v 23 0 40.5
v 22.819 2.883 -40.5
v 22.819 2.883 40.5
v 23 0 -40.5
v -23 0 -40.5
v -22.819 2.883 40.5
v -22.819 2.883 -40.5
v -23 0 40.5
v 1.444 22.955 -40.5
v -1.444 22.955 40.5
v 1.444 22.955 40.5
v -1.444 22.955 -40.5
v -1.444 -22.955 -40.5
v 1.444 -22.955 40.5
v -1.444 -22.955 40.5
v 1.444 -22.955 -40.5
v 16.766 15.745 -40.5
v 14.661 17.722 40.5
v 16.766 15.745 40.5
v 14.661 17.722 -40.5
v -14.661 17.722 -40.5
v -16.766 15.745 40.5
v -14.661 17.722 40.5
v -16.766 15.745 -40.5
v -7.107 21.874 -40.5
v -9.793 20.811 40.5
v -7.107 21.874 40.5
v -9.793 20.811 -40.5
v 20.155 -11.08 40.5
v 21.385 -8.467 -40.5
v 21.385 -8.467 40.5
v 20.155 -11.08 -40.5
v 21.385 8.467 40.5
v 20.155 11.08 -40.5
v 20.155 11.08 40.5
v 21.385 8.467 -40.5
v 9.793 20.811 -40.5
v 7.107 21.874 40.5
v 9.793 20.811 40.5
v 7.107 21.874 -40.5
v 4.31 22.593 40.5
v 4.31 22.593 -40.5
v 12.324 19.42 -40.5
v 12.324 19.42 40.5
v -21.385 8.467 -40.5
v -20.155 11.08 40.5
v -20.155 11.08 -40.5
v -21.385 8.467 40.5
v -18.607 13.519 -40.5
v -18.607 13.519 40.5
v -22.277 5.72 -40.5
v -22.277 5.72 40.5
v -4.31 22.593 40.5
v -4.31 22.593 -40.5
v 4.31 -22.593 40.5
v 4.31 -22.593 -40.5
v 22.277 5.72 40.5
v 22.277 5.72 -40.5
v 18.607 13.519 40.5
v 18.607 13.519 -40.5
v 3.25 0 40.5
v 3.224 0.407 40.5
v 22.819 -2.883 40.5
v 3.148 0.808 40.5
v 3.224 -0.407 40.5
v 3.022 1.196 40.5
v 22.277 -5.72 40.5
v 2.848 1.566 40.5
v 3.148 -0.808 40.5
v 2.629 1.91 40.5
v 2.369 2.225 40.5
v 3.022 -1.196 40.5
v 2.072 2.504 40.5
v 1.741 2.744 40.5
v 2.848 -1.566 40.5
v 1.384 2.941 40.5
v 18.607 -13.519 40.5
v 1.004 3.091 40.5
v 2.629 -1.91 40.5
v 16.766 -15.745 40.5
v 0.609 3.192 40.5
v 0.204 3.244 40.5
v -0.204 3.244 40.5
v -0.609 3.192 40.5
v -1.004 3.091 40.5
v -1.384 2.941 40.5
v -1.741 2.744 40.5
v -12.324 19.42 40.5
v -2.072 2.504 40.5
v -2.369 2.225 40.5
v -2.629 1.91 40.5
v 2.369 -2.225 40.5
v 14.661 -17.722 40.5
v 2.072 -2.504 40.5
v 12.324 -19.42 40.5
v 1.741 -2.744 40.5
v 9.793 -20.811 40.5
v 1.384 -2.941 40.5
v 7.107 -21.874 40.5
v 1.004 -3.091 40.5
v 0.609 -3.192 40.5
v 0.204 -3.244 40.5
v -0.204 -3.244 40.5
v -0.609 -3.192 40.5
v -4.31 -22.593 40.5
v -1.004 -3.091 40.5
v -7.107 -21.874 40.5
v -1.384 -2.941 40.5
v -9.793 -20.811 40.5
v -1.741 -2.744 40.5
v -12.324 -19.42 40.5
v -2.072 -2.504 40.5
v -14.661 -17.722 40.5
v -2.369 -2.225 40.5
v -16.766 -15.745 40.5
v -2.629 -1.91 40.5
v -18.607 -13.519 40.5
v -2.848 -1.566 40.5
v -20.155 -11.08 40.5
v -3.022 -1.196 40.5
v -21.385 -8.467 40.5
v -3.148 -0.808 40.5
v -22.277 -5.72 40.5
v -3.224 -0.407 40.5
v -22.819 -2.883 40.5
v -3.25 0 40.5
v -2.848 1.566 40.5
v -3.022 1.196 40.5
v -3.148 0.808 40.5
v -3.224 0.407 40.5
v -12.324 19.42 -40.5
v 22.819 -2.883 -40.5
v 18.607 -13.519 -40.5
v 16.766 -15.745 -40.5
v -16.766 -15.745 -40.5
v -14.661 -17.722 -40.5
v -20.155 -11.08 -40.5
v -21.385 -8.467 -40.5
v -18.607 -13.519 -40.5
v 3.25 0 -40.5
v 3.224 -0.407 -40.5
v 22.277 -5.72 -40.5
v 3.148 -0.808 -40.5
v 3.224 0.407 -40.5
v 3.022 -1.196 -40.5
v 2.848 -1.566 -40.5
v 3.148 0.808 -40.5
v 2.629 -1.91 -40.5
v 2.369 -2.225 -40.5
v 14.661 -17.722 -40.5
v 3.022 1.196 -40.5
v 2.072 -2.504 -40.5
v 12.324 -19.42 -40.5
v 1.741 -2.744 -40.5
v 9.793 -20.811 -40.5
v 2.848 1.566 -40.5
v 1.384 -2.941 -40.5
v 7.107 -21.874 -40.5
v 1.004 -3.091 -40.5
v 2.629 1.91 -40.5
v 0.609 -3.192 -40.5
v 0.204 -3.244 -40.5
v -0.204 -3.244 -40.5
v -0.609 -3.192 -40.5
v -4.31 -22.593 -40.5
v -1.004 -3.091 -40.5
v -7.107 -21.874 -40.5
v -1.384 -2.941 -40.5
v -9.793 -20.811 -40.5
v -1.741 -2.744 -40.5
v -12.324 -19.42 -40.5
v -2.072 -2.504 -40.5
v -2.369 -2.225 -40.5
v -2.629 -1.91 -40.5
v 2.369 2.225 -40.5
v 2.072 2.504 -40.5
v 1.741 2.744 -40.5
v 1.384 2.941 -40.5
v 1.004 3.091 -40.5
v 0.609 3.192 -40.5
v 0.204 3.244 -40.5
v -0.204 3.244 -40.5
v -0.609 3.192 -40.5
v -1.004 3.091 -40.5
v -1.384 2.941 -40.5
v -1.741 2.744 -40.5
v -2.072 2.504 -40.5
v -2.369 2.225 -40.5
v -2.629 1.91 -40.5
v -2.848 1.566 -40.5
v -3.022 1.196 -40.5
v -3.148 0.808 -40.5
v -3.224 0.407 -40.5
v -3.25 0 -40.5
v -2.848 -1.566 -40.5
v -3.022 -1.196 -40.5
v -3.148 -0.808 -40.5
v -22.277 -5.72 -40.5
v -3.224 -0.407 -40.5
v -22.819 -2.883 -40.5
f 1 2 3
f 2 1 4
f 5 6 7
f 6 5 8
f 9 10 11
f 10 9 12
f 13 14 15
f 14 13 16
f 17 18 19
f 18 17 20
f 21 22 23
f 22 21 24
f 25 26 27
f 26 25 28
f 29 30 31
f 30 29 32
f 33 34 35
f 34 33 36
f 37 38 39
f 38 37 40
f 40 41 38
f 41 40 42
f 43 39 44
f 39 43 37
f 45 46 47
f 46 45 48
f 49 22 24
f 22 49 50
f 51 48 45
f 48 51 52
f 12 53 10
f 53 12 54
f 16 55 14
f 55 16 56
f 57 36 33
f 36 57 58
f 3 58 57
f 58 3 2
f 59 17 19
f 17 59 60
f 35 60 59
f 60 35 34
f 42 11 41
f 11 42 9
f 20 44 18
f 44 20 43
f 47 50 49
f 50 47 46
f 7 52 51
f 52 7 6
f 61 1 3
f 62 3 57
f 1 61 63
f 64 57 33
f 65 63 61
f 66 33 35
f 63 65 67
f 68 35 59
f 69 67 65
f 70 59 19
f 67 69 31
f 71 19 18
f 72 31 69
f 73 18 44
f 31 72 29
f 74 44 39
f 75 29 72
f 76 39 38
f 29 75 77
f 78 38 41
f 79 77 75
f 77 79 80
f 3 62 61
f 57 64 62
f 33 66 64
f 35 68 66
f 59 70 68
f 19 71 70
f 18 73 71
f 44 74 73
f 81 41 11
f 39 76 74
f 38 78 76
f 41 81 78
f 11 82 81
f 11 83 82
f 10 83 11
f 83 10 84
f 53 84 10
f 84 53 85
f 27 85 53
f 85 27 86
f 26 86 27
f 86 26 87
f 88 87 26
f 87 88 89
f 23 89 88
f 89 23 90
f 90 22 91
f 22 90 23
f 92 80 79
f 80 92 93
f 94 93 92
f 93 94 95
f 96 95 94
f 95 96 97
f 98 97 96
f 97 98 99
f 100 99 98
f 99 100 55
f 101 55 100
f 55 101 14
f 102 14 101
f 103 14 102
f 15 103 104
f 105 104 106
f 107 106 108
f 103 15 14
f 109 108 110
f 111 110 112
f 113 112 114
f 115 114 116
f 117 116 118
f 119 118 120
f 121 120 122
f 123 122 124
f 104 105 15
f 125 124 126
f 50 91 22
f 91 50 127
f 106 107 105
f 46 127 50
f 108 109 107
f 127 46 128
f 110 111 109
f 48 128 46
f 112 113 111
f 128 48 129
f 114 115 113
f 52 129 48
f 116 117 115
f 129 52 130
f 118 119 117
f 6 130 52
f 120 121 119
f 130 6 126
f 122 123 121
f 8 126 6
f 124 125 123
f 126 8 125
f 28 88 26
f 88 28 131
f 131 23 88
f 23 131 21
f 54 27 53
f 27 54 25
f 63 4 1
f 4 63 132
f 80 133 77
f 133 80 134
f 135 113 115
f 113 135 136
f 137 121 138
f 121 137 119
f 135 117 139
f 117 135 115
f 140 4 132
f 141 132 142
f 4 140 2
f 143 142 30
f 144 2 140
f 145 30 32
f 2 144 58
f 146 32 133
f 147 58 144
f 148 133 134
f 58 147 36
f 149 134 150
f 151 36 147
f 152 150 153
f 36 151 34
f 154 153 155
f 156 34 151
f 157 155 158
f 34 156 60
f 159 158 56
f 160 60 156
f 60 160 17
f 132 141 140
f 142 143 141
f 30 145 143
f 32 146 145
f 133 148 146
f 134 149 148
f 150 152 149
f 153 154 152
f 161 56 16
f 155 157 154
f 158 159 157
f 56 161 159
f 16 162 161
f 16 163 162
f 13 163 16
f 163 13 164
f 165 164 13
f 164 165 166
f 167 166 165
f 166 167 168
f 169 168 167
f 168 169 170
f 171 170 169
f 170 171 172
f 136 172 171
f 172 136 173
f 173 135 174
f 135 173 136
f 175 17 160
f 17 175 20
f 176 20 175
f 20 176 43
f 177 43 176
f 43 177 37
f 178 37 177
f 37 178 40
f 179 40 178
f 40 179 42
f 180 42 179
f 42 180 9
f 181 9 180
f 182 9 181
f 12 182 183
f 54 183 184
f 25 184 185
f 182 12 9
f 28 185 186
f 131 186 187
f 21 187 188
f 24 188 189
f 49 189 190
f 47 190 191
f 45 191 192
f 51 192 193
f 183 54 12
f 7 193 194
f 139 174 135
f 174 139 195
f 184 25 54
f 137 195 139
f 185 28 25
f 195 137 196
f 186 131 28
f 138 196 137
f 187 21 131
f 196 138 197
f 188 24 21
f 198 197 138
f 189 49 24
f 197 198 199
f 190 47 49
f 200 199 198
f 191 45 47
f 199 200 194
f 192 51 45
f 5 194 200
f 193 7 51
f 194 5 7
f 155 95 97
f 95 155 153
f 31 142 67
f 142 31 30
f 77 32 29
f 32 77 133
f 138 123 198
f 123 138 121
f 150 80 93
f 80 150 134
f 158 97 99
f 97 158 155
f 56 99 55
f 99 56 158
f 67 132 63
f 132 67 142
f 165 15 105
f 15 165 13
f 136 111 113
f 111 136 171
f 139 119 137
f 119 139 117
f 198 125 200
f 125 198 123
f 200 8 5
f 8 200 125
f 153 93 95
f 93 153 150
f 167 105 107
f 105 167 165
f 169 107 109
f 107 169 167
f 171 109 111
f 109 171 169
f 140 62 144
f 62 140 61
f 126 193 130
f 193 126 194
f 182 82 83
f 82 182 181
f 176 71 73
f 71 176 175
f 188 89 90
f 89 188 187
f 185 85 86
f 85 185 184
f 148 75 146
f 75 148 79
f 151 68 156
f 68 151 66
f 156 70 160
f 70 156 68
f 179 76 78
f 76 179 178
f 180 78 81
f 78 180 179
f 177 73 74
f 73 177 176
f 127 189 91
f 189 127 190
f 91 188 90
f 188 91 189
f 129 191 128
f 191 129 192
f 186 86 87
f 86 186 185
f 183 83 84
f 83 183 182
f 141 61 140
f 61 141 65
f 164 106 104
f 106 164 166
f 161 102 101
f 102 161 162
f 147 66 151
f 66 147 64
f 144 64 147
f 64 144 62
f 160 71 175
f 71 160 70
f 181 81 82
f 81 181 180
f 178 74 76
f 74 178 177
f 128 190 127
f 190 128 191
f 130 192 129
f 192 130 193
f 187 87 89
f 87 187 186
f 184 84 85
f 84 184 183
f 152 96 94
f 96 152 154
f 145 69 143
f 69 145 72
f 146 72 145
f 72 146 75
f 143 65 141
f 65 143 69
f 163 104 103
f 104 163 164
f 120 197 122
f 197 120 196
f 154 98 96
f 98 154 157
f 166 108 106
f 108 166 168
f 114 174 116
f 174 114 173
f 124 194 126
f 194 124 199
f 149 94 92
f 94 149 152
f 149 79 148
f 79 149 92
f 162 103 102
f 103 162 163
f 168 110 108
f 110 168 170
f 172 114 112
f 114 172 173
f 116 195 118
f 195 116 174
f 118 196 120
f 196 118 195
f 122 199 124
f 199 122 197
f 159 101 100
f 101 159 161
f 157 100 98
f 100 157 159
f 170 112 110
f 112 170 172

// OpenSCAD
$fn = 50;


difference() {
	union() {
		translate(v = [0, 0, -40.5000000000]) {
			cylinder(h = 81, r = 23.0000000000);
		}
	}
	union() {
		translate(v = [0, 0, -100.0000000000]) {
			cylinder(h = 200, r = 3.2500000000);
		}
	}
}
